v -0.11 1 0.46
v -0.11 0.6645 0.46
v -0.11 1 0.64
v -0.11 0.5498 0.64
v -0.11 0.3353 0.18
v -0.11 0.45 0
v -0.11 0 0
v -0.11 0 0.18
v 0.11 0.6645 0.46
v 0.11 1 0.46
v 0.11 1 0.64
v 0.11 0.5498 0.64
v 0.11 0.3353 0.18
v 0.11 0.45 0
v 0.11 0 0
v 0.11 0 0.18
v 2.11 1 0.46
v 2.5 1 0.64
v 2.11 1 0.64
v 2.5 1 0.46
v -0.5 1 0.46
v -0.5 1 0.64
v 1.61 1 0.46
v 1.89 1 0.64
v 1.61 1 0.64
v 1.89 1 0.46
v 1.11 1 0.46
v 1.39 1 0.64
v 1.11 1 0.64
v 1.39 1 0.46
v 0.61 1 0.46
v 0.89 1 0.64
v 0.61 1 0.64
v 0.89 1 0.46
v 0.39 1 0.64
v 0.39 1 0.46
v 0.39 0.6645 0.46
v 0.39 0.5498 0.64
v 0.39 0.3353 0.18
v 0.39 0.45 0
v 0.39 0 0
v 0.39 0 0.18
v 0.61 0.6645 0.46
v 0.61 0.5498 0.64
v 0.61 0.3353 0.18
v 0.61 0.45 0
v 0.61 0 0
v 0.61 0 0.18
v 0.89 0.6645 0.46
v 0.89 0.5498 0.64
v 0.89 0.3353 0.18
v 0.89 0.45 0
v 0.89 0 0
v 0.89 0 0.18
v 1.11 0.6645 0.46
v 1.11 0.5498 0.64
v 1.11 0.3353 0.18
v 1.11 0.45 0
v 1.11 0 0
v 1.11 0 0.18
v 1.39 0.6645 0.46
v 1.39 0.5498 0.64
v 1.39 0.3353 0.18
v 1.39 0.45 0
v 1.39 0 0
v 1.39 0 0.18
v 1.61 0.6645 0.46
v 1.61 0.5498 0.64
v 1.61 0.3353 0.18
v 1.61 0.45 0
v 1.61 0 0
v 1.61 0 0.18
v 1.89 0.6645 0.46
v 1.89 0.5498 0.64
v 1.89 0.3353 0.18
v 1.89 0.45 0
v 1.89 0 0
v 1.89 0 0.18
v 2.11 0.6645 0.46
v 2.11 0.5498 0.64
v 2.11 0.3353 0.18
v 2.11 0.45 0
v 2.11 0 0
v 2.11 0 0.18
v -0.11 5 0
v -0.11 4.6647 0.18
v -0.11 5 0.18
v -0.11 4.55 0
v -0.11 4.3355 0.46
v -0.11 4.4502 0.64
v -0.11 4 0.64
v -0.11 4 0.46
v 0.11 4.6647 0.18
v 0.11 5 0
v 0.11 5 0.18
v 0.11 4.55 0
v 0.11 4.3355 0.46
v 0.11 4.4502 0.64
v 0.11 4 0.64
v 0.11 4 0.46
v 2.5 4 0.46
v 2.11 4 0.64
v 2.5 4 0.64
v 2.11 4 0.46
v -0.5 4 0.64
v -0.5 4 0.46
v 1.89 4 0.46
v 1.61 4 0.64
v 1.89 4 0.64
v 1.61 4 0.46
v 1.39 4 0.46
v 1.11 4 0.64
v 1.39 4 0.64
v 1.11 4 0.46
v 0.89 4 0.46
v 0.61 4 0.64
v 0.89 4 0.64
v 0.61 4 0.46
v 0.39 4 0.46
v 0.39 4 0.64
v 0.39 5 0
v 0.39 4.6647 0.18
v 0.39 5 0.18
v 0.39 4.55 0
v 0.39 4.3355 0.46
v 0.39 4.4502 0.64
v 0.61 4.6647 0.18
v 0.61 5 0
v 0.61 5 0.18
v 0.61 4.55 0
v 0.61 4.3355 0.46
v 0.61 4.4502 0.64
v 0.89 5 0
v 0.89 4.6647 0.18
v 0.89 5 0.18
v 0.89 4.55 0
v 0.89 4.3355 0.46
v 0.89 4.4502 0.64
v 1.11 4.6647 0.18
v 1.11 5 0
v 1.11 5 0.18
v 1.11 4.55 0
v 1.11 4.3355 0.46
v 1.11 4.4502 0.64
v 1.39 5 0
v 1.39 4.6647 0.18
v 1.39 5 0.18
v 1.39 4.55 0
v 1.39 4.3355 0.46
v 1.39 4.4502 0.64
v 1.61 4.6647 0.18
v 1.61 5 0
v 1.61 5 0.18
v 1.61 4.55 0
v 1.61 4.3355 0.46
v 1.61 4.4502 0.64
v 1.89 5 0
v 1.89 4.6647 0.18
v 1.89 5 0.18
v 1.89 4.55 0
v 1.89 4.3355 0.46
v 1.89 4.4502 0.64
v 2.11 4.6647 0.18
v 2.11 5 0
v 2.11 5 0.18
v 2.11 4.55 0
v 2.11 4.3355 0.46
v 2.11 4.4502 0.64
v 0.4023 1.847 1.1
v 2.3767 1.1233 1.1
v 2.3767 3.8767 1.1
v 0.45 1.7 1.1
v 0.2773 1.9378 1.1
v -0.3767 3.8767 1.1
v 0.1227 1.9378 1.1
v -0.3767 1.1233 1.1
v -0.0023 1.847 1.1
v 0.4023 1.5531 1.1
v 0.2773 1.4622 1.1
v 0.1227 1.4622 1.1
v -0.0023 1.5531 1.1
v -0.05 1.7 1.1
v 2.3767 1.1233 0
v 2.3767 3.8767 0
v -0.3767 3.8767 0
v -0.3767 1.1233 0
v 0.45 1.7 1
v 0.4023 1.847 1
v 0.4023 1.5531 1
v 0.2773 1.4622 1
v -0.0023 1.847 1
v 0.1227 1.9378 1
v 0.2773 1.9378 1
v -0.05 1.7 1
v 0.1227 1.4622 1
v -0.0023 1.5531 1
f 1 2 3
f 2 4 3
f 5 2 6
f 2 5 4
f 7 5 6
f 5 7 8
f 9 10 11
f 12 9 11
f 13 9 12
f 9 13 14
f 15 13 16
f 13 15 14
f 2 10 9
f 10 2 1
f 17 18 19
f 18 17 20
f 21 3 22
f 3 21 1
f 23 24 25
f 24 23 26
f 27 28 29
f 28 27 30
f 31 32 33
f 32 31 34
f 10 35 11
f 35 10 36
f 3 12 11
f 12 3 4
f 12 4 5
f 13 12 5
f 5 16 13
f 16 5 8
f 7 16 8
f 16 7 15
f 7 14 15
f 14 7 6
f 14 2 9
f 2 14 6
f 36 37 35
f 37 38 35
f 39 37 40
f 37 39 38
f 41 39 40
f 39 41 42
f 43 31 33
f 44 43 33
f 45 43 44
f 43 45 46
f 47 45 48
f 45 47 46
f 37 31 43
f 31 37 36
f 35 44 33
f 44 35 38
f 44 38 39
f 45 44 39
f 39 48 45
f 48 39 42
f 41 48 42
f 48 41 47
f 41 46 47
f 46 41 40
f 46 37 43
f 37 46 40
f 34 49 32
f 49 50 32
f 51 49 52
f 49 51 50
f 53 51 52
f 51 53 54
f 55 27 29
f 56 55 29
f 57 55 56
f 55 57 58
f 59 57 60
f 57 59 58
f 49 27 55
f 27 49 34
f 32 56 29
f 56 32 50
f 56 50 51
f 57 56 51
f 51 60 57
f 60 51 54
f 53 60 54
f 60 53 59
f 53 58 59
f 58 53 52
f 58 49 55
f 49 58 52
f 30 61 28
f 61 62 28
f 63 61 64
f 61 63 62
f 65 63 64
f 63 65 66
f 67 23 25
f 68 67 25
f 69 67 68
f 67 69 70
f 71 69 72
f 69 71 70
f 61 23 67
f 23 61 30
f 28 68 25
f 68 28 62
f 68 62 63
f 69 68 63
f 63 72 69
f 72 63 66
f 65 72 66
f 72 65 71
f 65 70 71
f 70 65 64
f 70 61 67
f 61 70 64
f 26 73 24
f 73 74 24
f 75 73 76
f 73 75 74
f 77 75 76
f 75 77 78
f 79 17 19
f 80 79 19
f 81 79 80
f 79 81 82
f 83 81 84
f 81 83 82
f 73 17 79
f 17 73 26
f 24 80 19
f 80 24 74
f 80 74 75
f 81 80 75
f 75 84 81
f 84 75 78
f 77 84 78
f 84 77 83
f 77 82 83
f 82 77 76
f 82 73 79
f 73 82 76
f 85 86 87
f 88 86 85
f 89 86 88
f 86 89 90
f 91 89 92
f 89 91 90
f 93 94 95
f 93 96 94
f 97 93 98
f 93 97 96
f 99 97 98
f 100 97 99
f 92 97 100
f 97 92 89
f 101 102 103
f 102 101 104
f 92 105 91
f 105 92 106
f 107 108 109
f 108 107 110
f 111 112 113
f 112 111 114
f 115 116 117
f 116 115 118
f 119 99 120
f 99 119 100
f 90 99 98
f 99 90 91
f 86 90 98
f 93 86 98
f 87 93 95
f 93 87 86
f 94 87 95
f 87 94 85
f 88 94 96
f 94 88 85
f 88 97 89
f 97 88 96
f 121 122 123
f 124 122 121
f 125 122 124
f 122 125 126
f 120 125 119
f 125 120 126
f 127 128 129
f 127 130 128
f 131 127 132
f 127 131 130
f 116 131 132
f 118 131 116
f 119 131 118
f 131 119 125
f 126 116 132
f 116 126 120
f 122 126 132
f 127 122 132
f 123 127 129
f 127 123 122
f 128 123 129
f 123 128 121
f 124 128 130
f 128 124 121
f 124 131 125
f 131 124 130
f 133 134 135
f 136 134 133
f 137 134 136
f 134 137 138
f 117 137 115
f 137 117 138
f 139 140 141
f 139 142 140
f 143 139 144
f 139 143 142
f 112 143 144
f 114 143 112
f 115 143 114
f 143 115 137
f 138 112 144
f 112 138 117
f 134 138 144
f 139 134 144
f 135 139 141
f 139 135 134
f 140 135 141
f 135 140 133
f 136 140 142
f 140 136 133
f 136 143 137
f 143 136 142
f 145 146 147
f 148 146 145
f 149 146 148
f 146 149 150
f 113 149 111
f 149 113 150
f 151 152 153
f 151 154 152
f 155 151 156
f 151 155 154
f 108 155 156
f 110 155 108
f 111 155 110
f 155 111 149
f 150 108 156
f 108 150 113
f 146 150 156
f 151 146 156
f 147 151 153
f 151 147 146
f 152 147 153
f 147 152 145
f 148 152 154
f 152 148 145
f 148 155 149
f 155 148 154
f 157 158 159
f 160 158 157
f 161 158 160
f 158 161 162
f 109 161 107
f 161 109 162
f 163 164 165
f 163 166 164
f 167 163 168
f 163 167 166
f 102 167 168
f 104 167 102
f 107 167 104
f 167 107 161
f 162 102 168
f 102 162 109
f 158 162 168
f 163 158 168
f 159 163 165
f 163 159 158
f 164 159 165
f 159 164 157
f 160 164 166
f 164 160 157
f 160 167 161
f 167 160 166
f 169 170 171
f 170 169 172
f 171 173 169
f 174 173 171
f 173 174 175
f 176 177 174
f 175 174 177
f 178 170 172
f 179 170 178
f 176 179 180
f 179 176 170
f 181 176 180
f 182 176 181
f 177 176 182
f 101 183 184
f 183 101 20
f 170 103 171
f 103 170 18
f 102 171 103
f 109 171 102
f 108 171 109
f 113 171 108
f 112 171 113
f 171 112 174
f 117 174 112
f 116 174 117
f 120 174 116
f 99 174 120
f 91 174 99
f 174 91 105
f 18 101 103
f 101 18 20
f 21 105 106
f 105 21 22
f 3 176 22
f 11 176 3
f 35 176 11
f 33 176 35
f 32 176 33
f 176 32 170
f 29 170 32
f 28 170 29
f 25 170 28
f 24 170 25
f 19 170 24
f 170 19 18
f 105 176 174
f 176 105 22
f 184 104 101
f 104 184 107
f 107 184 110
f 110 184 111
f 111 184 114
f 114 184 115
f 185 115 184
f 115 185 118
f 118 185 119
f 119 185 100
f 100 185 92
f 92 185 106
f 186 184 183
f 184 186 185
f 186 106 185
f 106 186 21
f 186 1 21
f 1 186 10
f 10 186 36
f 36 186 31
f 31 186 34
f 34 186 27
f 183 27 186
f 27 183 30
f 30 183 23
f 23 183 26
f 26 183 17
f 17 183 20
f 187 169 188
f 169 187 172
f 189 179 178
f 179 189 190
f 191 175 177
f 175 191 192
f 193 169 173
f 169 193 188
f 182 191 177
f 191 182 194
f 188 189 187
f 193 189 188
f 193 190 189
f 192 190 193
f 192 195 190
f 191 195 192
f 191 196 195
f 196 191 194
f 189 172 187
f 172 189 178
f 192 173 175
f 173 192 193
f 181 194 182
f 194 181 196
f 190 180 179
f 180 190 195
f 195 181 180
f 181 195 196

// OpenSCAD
// file: pin.scad
// This module outputs bended pin
// _L - whole pin length
// _l - length of bottom part
// _H - whole pin height
// _th - pin thickness
// _a - bending angle
// _W - pin width
module pin(_L,_l,_H,_th,_a,_W)
{
	// Internal variables
    _d1 = _th*sin(_a) / (1-cos(_a));
    _d2 = (_th-_H)*cos(_a) / sin(_a);

	rotate([90,0,90])
    // Extrude the following polygon
	linear_extrude(height = _W, center = true, convexity = 10, twist = 0)
        polygon([[0,0],
                 [_l,0],
				 [_l+_d2,_H-_th],
				 [_L,_H-_th],
				 [_L,_H],
				 [_l+_d2-_d1,_H],
				 [_l-_d1,_th],
				 [0,_th]]);
}

// Example of usage
pin(2,1,1,0.2,115,0.5);
// file: case.scad
// This module draws case
// _L - case length
// _W - case width
// _H - case height
// _ph - top point (vertical) of pin connection area
// _pt - pin thickness
// _atl - case angle top left,
// _atr - case angle top right,
// _atu - case angle top up
// _atd - case angle top down
// _abl - case angle bottom left,
// _abr - case angle bottom right,
// _abu - case angle bottom up
// _abd - case angle bottom down
// _n_x - notch X position relative to case corner
// _n_y - notch Y position relative to case corner
// _n_d - notch diameter
// _n_z - notch_depth
module case(_L,_W,_H,_ph,_pt,_atl,_atr,_atu,_atd,_abl,_abr,_abu,_abd, _n_x, _n_y, _n_d, _n_z)
{
    _tth = _H - _ph;
    _bth = _ph - _pt;
    _dtl = _tth * cos(_atl) / sin(_atl);
    _dtr = _tth * cos(_atr) / sin(_atr);
    _dtu = _tth * cos(_atu) / sin(_atu);
    _dtd = _tth * cos(_atd) / sin(_atd);
    _dbl = _bth * cos(_abl) / sin(_abl);
    _dbr = _bth * cos(_abr) / sin(_abr);
    _dbu = _bth * cos(_abu) / sin(_abu);
    _dbd = _bth * cos(_abd) / sin(_abd);
	// Make case with notch - difference between case and small cylinder
    difference()
    {
        // This is our case
        polyhedron(
            points = [
                // top points
                [ 0 + _dtl, 0 + _dtd, _H],
                [_L - _dtr, 0 + _dtd, _H],
                [_L - _dtr,_W - _dtu, _H],
                [ 0 + _dtl,_W - _dtu, _H],
                // middle top points
                [ 0, 0,_ph],
                [_L, 0,_ph],
                [_L,_W,_ph],
                [ 0,_W,_ph],
                // middle bottom points
                [ 0, 0,_ph - _pt],
                [_L, 0,_ph - _pt],
                [_L,_W,_ph - _pt],
                [ 0,_W,_ph - _pt],
                // bottom points
                [ 0 + _dbl, 0 + _dbd, 0],
                [_L - _dbr, 0 + _dbd, 0],
                [_L - _dbr,_W - _dbu, 0],
                [ 0 + _dbl,_W - _dbu, 0]
            ],
            triangles = [
                // Top
                [ 0, 3, 2, 1],
                // Top sides
                [ 4, 0, 1, 5],
                [ 5, 1, 2, 6],
                [ 6, 2, 3, 7],
                [ 7, 3, 0, 4],
                // Middle sides
                [ 4, 5, 9, 8],
                [ 5, 6,10, 9],
                [ 6, 7,11,10],
                [ 7, 4, 8,11],
                // Bottom sides
                [12, 8, 9,13],
                [13, 9,10,14],
                [14,10,11,15],
                [15,11, 8,12],
                // Bottom
                [12,13,14,15]
            ]
        );
        // This is notch
        translate([_n_x,_n_y,_H])
            cylinder(r = _n_d/2, h = _n_z*2, center = true, $fn=10);
    }
}

// Example of usage
// case(10,5,1.5,0.7,0.3,80,80,80,80,45,45,45,45, 1,1,1);
// main file
use <case.scad>
use <pin.scad>

case_z = 1.1;
case_x = 3;
case_y = 3;
case_a = 75;

notch_d=0.5;
notch_depth=0.1;
notch_x=0.7;
notch_y=0.7;

side1_pins = 5;
side2_pins = 0;
side3_pins = 5;
side4_pins = 0;
pin_distance = 0.5;

pin_th = 0.18;
pin_W = 0.22;
pin_L = 1.0;
pin_H = case_z/2+pin_th/2;
pin_l = 0.45;
pin_a = 115;

// Array of pins
// _cnt - number of pins
// _distance - distance between pin centres
module pins_array(_cnt, _distance)
{
	if (_cnt>0)
	{
		for (_i = [0:_cnt-1])
		{
			translate([_distance*_i,0,0])
				pin(pin_L,pin_l,pin_H,pin_th,pin_a,pin_W);
		}
	}
}

// Complete model
union()
{
	// Top pins
	translate([(side1_pins-side3_pins)*pin_distance/2,case_y+pin_L*2,0])
		mirror([0,1,0])
			pins_array(side3_pins, pin_distance);

	// Bottom pins
	pins_array(side1_pins, pin_distance);

	// Left pins
	translate([-(case_x-(side1_pins-1)*pin_distance)/2 - pin_L,pin_L+case_y/2-(side4_pins-1)*pin_distance/2,0])
		mirror([1,0,0])
			rotate([0,0,90])
				pins_array(side4_pins, pin_distance);

	// Right pins
	translate([-(case_x-(side1_pins-1)*pin_distance)/2-pin_L+case_x+2*pin_L,pin_L+case_y/2-(side2_pins-1)*pin_distance/2,0])
		mirror([0,1,0])
			mirror([0,1,0])
				rotate([0,0,90])
					pins_array(side2_pins, pin_distance);

	// Case
	translate([-(case_x-(side1_pins-1)*pin_distance)/2,pin_L,0])
		case(case_x,case_y,case_z,pin_H,pin_th,case_a,case_a,case_a,case_a,case_a,case_a,case_a,case_a, notch_x,notch_y,notch_d,notch_depth);
}
